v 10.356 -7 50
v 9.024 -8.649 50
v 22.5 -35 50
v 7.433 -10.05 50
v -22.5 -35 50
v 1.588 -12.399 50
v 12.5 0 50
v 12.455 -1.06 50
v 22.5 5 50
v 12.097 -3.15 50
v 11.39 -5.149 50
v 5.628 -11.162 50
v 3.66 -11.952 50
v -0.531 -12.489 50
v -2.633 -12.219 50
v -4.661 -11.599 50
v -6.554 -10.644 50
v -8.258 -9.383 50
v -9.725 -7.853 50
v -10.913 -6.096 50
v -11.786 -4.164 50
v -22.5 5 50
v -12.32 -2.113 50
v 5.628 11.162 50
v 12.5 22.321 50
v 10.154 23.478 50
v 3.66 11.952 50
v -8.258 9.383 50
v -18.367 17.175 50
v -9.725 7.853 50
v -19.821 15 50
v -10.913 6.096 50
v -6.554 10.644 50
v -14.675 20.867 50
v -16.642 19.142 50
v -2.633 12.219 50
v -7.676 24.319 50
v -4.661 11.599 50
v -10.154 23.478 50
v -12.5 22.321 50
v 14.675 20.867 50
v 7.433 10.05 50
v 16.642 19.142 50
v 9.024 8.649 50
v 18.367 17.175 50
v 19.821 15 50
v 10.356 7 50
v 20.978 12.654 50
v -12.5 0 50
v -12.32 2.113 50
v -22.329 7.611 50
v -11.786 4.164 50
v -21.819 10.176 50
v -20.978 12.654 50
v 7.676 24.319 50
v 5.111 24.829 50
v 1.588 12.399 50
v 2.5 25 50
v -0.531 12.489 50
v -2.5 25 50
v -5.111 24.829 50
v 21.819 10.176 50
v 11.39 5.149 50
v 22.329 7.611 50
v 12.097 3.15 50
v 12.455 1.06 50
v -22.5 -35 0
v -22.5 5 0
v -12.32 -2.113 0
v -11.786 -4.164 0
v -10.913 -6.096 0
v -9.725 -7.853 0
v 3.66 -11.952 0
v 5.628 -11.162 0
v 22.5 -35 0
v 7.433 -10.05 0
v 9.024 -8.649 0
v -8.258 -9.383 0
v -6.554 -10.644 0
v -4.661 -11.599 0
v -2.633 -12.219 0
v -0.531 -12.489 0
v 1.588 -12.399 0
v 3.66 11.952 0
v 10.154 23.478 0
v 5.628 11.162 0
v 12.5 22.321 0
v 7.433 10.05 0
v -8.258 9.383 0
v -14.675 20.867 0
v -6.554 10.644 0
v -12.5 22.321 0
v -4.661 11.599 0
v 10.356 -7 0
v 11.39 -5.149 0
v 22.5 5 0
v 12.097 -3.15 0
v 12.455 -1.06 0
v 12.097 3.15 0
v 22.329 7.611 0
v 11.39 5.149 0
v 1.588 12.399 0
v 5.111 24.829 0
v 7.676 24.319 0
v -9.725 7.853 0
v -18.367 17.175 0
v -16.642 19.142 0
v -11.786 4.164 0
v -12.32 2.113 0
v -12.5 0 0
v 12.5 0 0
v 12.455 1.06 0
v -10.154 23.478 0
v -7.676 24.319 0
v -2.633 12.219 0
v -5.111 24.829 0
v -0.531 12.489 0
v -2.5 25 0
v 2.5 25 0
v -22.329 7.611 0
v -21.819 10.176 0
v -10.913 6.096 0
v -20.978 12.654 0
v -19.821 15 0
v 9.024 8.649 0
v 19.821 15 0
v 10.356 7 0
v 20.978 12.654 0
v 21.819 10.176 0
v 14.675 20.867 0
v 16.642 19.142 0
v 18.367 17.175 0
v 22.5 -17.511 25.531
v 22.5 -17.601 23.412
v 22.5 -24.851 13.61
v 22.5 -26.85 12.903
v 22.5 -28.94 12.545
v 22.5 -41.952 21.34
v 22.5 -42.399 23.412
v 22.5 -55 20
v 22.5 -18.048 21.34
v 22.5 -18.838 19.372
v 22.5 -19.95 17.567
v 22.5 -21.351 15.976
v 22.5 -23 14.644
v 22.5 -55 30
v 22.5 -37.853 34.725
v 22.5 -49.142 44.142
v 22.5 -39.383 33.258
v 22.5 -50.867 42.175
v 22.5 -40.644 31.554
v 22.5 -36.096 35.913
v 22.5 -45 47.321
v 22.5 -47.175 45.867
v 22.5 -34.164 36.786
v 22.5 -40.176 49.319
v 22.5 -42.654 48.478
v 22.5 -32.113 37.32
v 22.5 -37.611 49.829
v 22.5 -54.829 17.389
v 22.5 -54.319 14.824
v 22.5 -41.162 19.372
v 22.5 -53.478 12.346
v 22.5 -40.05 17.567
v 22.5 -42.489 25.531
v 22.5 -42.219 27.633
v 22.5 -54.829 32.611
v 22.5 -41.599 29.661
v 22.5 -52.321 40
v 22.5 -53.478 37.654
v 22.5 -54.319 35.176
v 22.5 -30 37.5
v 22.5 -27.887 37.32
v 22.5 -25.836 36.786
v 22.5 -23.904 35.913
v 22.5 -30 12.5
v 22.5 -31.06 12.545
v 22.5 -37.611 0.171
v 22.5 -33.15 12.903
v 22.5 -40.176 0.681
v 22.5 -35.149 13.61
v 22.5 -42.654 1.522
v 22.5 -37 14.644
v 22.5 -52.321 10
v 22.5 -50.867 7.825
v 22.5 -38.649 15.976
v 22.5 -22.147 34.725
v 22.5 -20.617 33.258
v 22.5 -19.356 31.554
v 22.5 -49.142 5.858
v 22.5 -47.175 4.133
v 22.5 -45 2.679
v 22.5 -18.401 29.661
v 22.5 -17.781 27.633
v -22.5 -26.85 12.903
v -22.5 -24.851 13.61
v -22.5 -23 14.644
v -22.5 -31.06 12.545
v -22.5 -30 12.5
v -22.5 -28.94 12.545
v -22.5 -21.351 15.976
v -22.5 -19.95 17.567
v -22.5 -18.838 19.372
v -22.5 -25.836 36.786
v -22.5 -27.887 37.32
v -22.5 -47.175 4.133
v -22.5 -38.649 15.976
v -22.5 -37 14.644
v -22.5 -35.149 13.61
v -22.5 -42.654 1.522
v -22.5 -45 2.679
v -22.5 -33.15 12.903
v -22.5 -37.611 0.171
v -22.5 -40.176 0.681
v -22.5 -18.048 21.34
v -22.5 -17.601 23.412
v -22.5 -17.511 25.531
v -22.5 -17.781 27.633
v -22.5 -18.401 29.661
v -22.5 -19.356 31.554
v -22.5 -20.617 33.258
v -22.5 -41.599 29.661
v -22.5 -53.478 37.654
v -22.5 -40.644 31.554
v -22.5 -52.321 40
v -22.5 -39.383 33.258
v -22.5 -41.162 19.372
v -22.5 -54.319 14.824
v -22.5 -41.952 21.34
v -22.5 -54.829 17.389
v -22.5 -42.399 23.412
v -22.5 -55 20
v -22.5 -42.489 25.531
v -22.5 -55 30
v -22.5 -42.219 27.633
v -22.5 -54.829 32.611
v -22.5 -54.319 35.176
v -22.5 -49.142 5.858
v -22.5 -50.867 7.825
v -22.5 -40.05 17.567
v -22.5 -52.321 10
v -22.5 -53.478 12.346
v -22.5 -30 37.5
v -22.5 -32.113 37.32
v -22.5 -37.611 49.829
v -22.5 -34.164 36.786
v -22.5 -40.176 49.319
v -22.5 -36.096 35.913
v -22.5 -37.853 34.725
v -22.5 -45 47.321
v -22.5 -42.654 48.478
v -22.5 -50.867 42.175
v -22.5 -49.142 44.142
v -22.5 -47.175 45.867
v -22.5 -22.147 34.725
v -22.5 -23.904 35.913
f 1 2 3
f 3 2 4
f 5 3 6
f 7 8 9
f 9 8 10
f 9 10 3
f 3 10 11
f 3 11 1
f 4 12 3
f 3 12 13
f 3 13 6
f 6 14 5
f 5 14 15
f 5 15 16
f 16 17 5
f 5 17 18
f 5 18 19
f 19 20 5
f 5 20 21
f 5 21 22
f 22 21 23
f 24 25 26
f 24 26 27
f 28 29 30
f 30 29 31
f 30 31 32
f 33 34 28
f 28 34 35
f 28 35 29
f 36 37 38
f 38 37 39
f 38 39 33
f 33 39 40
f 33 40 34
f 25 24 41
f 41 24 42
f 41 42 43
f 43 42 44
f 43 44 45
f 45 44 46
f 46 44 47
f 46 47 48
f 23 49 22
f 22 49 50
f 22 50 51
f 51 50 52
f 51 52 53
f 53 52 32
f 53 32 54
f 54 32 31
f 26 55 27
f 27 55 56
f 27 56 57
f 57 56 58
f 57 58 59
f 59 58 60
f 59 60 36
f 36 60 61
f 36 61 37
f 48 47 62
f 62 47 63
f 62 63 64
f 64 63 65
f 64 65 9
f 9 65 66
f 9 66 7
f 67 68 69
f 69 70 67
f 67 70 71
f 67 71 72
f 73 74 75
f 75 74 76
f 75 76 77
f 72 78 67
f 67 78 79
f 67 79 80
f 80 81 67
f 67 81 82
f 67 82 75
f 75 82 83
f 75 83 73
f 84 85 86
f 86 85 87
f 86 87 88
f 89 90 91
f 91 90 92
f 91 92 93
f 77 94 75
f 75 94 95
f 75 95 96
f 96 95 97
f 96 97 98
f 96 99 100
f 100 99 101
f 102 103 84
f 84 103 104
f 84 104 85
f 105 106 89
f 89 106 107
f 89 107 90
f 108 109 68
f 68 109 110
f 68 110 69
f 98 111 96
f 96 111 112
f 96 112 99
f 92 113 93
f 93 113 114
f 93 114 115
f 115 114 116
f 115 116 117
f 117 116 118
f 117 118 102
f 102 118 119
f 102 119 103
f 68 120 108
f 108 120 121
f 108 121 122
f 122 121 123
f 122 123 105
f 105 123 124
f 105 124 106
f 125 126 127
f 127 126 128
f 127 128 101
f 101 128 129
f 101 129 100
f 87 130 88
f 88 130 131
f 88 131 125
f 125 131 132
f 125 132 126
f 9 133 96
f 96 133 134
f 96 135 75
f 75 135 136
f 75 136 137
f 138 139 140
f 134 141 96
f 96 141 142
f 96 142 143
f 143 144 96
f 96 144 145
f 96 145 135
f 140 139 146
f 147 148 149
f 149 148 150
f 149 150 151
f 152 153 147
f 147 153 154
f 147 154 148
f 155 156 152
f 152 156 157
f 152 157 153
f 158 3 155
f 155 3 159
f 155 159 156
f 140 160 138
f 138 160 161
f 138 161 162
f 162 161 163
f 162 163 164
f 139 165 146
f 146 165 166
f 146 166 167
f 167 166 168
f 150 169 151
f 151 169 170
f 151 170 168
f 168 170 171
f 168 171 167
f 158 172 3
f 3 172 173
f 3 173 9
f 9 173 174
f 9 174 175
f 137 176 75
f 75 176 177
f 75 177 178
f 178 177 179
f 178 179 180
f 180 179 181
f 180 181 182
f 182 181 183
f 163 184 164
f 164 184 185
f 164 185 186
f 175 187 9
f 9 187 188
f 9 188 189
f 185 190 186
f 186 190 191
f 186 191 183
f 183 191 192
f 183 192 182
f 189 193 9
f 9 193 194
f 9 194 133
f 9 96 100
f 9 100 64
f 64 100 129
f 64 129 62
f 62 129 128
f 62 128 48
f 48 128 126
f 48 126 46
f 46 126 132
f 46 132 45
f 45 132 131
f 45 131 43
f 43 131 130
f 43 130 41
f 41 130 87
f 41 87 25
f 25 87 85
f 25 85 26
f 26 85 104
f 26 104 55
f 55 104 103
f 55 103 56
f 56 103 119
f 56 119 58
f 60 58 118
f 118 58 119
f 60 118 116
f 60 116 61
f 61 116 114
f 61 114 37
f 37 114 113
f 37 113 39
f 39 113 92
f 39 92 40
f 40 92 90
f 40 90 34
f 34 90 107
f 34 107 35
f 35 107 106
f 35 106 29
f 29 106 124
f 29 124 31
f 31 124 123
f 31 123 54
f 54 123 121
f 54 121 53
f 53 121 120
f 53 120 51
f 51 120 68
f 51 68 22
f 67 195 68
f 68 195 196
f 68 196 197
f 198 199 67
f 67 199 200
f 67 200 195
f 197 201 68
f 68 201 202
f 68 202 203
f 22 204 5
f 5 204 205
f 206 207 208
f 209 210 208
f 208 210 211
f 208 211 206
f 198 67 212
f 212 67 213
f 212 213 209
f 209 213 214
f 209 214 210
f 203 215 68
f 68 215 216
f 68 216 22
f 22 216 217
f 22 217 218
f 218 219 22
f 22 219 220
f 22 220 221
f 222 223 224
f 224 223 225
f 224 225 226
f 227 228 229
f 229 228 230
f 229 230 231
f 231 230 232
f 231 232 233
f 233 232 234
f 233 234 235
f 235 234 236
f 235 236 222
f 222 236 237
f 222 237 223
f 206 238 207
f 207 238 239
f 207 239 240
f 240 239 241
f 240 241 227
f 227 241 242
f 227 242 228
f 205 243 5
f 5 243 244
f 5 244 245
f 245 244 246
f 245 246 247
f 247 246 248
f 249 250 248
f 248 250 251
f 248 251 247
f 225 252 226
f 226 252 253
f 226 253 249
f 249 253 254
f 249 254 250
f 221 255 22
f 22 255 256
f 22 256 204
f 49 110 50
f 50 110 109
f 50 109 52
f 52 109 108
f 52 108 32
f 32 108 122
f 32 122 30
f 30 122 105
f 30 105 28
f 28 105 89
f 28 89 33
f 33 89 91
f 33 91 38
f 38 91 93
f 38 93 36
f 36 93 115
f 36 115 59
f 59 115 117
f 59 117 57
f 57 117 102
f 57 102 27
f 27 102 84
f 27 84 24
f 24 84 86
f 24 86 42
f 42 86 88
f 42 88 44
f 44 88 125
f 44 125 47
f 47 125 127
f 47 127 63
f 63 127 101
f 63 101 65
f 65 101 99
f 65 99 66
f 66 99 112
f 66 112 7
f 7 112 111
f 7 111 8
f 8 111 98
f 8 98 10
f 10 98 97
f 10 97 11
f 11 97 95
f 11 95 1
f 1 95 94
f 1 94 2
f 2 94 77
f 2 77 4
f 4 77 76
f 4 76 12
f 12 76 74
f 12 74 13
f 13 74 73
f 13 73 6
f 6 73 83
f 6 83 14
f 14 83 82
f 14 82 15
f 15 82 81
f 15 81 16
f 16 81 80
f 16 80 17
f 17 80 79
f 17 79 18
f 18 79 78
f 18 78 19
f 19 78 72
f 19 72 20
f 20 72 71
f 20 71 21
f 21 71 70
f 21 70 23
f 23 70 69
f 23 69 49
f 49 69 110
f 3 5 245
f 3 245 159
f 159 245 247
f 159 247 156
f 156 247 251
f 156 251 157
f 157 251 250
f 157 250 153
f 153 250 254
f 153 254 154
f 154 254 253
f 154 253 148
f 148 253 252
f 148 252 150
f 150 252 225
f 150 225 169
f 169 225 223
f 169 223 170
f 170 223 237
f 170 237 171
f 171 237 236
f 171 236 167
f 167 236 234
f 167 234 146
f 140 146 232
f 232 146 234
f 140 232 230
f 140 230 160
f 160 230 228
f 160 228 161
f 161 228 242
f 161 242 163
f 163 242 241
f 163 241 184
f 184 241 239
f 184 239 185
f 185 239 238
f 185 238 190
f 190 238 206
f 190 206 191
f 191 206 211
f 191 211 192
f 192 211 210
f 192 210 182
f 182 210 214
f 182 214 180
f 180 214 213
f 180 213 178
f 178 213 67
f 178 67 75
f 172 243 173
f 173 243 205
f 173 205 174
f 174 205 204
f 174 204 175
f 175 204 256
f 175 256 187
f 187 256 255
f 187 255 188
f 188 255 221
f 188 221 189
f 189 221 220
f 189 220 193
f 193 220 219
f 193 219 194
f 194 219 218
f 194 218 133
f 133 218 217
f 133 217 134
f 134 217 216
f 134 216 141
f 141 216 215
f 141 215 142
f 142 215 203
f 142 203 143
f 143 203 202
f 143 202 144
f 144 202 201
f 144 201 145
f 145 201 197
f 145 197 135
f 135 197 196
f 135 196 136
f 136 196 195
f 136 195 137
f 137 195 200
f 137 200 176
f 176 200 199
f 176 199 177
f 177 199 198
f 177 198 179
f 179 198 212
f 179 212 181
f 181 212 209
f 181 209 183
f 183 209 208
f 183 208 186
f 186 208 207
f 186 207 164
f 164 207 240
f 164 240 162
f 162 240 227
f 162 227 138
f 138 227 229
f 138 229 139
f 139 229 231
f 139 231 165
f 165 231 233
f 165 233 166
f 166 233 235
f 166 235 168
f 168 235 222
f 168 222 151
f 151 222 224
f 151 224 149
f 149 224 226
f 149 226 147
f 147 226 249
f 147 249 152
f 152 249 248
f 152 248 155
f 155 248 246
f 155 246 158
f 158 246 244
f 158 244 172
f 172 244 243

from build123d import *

# Parameters (mm, degrees)
SKETCH1_R           = 12.5
BOSS_EXTRUDE1_DEPTH = 50
SKETCH2_R           = 12.5
BOSS_EXTRUDE2_DEPTH = 22.5


with BuildPart() as part:
    # Sketch1 → Boss-Extrude1 (new body)
    with BuildSketch(Plane.XY):
        with BuildLine():
            Line((-2.5, 25), (2.5, 25))
            ThreePointArc((2.5, 25), (16.642135624, 19.142135624), (22.5, 5))
            Line((22.5, 5), (22.5, -15))
            Line((22.5, -15), (-22.5, -15))
            Line((-22.5, -15), (-22.5, 5))
            ThreePointArc((-22.5, 5), (-16.642135624, 19.142135624), (-2.5, 25))
        make_face()
        Circle(SKETCH1_R, mode=Mode.SUBTRACT)
    extrude(amount=BOSS_EXTRUDE1_DEPTH)

    # Sketch2 → Boss-Extrude2 (add, symmetric)
    with BuildSketch(Plane(origin=(0, 0, 0), x_dir=(0, 0, -1), z_dir=(1, 0, 0))):
        with BuildLine():
            Line((-50, -15), (-50, -35))
            ThreePointArc((-50, -35), (-44.142135624, -49.142135624), (-30, -55))
            Line((-30, -55), (-20, -55))
            ThreePointArc((-20, -55), (-5.857864376, -49.142135624), (0, -35))
            Line((0, -35), (0, -15))
            Line((0, -15), (-50, -15))
        make_face()
        with Locations((-25, -30)):
            Circle(SKETCH2_R, mode=Mode.SUBTRACT)
    extrude(amount=BOSS_EXTRUDE2_DEPTH, both=True)


solid = part.part
